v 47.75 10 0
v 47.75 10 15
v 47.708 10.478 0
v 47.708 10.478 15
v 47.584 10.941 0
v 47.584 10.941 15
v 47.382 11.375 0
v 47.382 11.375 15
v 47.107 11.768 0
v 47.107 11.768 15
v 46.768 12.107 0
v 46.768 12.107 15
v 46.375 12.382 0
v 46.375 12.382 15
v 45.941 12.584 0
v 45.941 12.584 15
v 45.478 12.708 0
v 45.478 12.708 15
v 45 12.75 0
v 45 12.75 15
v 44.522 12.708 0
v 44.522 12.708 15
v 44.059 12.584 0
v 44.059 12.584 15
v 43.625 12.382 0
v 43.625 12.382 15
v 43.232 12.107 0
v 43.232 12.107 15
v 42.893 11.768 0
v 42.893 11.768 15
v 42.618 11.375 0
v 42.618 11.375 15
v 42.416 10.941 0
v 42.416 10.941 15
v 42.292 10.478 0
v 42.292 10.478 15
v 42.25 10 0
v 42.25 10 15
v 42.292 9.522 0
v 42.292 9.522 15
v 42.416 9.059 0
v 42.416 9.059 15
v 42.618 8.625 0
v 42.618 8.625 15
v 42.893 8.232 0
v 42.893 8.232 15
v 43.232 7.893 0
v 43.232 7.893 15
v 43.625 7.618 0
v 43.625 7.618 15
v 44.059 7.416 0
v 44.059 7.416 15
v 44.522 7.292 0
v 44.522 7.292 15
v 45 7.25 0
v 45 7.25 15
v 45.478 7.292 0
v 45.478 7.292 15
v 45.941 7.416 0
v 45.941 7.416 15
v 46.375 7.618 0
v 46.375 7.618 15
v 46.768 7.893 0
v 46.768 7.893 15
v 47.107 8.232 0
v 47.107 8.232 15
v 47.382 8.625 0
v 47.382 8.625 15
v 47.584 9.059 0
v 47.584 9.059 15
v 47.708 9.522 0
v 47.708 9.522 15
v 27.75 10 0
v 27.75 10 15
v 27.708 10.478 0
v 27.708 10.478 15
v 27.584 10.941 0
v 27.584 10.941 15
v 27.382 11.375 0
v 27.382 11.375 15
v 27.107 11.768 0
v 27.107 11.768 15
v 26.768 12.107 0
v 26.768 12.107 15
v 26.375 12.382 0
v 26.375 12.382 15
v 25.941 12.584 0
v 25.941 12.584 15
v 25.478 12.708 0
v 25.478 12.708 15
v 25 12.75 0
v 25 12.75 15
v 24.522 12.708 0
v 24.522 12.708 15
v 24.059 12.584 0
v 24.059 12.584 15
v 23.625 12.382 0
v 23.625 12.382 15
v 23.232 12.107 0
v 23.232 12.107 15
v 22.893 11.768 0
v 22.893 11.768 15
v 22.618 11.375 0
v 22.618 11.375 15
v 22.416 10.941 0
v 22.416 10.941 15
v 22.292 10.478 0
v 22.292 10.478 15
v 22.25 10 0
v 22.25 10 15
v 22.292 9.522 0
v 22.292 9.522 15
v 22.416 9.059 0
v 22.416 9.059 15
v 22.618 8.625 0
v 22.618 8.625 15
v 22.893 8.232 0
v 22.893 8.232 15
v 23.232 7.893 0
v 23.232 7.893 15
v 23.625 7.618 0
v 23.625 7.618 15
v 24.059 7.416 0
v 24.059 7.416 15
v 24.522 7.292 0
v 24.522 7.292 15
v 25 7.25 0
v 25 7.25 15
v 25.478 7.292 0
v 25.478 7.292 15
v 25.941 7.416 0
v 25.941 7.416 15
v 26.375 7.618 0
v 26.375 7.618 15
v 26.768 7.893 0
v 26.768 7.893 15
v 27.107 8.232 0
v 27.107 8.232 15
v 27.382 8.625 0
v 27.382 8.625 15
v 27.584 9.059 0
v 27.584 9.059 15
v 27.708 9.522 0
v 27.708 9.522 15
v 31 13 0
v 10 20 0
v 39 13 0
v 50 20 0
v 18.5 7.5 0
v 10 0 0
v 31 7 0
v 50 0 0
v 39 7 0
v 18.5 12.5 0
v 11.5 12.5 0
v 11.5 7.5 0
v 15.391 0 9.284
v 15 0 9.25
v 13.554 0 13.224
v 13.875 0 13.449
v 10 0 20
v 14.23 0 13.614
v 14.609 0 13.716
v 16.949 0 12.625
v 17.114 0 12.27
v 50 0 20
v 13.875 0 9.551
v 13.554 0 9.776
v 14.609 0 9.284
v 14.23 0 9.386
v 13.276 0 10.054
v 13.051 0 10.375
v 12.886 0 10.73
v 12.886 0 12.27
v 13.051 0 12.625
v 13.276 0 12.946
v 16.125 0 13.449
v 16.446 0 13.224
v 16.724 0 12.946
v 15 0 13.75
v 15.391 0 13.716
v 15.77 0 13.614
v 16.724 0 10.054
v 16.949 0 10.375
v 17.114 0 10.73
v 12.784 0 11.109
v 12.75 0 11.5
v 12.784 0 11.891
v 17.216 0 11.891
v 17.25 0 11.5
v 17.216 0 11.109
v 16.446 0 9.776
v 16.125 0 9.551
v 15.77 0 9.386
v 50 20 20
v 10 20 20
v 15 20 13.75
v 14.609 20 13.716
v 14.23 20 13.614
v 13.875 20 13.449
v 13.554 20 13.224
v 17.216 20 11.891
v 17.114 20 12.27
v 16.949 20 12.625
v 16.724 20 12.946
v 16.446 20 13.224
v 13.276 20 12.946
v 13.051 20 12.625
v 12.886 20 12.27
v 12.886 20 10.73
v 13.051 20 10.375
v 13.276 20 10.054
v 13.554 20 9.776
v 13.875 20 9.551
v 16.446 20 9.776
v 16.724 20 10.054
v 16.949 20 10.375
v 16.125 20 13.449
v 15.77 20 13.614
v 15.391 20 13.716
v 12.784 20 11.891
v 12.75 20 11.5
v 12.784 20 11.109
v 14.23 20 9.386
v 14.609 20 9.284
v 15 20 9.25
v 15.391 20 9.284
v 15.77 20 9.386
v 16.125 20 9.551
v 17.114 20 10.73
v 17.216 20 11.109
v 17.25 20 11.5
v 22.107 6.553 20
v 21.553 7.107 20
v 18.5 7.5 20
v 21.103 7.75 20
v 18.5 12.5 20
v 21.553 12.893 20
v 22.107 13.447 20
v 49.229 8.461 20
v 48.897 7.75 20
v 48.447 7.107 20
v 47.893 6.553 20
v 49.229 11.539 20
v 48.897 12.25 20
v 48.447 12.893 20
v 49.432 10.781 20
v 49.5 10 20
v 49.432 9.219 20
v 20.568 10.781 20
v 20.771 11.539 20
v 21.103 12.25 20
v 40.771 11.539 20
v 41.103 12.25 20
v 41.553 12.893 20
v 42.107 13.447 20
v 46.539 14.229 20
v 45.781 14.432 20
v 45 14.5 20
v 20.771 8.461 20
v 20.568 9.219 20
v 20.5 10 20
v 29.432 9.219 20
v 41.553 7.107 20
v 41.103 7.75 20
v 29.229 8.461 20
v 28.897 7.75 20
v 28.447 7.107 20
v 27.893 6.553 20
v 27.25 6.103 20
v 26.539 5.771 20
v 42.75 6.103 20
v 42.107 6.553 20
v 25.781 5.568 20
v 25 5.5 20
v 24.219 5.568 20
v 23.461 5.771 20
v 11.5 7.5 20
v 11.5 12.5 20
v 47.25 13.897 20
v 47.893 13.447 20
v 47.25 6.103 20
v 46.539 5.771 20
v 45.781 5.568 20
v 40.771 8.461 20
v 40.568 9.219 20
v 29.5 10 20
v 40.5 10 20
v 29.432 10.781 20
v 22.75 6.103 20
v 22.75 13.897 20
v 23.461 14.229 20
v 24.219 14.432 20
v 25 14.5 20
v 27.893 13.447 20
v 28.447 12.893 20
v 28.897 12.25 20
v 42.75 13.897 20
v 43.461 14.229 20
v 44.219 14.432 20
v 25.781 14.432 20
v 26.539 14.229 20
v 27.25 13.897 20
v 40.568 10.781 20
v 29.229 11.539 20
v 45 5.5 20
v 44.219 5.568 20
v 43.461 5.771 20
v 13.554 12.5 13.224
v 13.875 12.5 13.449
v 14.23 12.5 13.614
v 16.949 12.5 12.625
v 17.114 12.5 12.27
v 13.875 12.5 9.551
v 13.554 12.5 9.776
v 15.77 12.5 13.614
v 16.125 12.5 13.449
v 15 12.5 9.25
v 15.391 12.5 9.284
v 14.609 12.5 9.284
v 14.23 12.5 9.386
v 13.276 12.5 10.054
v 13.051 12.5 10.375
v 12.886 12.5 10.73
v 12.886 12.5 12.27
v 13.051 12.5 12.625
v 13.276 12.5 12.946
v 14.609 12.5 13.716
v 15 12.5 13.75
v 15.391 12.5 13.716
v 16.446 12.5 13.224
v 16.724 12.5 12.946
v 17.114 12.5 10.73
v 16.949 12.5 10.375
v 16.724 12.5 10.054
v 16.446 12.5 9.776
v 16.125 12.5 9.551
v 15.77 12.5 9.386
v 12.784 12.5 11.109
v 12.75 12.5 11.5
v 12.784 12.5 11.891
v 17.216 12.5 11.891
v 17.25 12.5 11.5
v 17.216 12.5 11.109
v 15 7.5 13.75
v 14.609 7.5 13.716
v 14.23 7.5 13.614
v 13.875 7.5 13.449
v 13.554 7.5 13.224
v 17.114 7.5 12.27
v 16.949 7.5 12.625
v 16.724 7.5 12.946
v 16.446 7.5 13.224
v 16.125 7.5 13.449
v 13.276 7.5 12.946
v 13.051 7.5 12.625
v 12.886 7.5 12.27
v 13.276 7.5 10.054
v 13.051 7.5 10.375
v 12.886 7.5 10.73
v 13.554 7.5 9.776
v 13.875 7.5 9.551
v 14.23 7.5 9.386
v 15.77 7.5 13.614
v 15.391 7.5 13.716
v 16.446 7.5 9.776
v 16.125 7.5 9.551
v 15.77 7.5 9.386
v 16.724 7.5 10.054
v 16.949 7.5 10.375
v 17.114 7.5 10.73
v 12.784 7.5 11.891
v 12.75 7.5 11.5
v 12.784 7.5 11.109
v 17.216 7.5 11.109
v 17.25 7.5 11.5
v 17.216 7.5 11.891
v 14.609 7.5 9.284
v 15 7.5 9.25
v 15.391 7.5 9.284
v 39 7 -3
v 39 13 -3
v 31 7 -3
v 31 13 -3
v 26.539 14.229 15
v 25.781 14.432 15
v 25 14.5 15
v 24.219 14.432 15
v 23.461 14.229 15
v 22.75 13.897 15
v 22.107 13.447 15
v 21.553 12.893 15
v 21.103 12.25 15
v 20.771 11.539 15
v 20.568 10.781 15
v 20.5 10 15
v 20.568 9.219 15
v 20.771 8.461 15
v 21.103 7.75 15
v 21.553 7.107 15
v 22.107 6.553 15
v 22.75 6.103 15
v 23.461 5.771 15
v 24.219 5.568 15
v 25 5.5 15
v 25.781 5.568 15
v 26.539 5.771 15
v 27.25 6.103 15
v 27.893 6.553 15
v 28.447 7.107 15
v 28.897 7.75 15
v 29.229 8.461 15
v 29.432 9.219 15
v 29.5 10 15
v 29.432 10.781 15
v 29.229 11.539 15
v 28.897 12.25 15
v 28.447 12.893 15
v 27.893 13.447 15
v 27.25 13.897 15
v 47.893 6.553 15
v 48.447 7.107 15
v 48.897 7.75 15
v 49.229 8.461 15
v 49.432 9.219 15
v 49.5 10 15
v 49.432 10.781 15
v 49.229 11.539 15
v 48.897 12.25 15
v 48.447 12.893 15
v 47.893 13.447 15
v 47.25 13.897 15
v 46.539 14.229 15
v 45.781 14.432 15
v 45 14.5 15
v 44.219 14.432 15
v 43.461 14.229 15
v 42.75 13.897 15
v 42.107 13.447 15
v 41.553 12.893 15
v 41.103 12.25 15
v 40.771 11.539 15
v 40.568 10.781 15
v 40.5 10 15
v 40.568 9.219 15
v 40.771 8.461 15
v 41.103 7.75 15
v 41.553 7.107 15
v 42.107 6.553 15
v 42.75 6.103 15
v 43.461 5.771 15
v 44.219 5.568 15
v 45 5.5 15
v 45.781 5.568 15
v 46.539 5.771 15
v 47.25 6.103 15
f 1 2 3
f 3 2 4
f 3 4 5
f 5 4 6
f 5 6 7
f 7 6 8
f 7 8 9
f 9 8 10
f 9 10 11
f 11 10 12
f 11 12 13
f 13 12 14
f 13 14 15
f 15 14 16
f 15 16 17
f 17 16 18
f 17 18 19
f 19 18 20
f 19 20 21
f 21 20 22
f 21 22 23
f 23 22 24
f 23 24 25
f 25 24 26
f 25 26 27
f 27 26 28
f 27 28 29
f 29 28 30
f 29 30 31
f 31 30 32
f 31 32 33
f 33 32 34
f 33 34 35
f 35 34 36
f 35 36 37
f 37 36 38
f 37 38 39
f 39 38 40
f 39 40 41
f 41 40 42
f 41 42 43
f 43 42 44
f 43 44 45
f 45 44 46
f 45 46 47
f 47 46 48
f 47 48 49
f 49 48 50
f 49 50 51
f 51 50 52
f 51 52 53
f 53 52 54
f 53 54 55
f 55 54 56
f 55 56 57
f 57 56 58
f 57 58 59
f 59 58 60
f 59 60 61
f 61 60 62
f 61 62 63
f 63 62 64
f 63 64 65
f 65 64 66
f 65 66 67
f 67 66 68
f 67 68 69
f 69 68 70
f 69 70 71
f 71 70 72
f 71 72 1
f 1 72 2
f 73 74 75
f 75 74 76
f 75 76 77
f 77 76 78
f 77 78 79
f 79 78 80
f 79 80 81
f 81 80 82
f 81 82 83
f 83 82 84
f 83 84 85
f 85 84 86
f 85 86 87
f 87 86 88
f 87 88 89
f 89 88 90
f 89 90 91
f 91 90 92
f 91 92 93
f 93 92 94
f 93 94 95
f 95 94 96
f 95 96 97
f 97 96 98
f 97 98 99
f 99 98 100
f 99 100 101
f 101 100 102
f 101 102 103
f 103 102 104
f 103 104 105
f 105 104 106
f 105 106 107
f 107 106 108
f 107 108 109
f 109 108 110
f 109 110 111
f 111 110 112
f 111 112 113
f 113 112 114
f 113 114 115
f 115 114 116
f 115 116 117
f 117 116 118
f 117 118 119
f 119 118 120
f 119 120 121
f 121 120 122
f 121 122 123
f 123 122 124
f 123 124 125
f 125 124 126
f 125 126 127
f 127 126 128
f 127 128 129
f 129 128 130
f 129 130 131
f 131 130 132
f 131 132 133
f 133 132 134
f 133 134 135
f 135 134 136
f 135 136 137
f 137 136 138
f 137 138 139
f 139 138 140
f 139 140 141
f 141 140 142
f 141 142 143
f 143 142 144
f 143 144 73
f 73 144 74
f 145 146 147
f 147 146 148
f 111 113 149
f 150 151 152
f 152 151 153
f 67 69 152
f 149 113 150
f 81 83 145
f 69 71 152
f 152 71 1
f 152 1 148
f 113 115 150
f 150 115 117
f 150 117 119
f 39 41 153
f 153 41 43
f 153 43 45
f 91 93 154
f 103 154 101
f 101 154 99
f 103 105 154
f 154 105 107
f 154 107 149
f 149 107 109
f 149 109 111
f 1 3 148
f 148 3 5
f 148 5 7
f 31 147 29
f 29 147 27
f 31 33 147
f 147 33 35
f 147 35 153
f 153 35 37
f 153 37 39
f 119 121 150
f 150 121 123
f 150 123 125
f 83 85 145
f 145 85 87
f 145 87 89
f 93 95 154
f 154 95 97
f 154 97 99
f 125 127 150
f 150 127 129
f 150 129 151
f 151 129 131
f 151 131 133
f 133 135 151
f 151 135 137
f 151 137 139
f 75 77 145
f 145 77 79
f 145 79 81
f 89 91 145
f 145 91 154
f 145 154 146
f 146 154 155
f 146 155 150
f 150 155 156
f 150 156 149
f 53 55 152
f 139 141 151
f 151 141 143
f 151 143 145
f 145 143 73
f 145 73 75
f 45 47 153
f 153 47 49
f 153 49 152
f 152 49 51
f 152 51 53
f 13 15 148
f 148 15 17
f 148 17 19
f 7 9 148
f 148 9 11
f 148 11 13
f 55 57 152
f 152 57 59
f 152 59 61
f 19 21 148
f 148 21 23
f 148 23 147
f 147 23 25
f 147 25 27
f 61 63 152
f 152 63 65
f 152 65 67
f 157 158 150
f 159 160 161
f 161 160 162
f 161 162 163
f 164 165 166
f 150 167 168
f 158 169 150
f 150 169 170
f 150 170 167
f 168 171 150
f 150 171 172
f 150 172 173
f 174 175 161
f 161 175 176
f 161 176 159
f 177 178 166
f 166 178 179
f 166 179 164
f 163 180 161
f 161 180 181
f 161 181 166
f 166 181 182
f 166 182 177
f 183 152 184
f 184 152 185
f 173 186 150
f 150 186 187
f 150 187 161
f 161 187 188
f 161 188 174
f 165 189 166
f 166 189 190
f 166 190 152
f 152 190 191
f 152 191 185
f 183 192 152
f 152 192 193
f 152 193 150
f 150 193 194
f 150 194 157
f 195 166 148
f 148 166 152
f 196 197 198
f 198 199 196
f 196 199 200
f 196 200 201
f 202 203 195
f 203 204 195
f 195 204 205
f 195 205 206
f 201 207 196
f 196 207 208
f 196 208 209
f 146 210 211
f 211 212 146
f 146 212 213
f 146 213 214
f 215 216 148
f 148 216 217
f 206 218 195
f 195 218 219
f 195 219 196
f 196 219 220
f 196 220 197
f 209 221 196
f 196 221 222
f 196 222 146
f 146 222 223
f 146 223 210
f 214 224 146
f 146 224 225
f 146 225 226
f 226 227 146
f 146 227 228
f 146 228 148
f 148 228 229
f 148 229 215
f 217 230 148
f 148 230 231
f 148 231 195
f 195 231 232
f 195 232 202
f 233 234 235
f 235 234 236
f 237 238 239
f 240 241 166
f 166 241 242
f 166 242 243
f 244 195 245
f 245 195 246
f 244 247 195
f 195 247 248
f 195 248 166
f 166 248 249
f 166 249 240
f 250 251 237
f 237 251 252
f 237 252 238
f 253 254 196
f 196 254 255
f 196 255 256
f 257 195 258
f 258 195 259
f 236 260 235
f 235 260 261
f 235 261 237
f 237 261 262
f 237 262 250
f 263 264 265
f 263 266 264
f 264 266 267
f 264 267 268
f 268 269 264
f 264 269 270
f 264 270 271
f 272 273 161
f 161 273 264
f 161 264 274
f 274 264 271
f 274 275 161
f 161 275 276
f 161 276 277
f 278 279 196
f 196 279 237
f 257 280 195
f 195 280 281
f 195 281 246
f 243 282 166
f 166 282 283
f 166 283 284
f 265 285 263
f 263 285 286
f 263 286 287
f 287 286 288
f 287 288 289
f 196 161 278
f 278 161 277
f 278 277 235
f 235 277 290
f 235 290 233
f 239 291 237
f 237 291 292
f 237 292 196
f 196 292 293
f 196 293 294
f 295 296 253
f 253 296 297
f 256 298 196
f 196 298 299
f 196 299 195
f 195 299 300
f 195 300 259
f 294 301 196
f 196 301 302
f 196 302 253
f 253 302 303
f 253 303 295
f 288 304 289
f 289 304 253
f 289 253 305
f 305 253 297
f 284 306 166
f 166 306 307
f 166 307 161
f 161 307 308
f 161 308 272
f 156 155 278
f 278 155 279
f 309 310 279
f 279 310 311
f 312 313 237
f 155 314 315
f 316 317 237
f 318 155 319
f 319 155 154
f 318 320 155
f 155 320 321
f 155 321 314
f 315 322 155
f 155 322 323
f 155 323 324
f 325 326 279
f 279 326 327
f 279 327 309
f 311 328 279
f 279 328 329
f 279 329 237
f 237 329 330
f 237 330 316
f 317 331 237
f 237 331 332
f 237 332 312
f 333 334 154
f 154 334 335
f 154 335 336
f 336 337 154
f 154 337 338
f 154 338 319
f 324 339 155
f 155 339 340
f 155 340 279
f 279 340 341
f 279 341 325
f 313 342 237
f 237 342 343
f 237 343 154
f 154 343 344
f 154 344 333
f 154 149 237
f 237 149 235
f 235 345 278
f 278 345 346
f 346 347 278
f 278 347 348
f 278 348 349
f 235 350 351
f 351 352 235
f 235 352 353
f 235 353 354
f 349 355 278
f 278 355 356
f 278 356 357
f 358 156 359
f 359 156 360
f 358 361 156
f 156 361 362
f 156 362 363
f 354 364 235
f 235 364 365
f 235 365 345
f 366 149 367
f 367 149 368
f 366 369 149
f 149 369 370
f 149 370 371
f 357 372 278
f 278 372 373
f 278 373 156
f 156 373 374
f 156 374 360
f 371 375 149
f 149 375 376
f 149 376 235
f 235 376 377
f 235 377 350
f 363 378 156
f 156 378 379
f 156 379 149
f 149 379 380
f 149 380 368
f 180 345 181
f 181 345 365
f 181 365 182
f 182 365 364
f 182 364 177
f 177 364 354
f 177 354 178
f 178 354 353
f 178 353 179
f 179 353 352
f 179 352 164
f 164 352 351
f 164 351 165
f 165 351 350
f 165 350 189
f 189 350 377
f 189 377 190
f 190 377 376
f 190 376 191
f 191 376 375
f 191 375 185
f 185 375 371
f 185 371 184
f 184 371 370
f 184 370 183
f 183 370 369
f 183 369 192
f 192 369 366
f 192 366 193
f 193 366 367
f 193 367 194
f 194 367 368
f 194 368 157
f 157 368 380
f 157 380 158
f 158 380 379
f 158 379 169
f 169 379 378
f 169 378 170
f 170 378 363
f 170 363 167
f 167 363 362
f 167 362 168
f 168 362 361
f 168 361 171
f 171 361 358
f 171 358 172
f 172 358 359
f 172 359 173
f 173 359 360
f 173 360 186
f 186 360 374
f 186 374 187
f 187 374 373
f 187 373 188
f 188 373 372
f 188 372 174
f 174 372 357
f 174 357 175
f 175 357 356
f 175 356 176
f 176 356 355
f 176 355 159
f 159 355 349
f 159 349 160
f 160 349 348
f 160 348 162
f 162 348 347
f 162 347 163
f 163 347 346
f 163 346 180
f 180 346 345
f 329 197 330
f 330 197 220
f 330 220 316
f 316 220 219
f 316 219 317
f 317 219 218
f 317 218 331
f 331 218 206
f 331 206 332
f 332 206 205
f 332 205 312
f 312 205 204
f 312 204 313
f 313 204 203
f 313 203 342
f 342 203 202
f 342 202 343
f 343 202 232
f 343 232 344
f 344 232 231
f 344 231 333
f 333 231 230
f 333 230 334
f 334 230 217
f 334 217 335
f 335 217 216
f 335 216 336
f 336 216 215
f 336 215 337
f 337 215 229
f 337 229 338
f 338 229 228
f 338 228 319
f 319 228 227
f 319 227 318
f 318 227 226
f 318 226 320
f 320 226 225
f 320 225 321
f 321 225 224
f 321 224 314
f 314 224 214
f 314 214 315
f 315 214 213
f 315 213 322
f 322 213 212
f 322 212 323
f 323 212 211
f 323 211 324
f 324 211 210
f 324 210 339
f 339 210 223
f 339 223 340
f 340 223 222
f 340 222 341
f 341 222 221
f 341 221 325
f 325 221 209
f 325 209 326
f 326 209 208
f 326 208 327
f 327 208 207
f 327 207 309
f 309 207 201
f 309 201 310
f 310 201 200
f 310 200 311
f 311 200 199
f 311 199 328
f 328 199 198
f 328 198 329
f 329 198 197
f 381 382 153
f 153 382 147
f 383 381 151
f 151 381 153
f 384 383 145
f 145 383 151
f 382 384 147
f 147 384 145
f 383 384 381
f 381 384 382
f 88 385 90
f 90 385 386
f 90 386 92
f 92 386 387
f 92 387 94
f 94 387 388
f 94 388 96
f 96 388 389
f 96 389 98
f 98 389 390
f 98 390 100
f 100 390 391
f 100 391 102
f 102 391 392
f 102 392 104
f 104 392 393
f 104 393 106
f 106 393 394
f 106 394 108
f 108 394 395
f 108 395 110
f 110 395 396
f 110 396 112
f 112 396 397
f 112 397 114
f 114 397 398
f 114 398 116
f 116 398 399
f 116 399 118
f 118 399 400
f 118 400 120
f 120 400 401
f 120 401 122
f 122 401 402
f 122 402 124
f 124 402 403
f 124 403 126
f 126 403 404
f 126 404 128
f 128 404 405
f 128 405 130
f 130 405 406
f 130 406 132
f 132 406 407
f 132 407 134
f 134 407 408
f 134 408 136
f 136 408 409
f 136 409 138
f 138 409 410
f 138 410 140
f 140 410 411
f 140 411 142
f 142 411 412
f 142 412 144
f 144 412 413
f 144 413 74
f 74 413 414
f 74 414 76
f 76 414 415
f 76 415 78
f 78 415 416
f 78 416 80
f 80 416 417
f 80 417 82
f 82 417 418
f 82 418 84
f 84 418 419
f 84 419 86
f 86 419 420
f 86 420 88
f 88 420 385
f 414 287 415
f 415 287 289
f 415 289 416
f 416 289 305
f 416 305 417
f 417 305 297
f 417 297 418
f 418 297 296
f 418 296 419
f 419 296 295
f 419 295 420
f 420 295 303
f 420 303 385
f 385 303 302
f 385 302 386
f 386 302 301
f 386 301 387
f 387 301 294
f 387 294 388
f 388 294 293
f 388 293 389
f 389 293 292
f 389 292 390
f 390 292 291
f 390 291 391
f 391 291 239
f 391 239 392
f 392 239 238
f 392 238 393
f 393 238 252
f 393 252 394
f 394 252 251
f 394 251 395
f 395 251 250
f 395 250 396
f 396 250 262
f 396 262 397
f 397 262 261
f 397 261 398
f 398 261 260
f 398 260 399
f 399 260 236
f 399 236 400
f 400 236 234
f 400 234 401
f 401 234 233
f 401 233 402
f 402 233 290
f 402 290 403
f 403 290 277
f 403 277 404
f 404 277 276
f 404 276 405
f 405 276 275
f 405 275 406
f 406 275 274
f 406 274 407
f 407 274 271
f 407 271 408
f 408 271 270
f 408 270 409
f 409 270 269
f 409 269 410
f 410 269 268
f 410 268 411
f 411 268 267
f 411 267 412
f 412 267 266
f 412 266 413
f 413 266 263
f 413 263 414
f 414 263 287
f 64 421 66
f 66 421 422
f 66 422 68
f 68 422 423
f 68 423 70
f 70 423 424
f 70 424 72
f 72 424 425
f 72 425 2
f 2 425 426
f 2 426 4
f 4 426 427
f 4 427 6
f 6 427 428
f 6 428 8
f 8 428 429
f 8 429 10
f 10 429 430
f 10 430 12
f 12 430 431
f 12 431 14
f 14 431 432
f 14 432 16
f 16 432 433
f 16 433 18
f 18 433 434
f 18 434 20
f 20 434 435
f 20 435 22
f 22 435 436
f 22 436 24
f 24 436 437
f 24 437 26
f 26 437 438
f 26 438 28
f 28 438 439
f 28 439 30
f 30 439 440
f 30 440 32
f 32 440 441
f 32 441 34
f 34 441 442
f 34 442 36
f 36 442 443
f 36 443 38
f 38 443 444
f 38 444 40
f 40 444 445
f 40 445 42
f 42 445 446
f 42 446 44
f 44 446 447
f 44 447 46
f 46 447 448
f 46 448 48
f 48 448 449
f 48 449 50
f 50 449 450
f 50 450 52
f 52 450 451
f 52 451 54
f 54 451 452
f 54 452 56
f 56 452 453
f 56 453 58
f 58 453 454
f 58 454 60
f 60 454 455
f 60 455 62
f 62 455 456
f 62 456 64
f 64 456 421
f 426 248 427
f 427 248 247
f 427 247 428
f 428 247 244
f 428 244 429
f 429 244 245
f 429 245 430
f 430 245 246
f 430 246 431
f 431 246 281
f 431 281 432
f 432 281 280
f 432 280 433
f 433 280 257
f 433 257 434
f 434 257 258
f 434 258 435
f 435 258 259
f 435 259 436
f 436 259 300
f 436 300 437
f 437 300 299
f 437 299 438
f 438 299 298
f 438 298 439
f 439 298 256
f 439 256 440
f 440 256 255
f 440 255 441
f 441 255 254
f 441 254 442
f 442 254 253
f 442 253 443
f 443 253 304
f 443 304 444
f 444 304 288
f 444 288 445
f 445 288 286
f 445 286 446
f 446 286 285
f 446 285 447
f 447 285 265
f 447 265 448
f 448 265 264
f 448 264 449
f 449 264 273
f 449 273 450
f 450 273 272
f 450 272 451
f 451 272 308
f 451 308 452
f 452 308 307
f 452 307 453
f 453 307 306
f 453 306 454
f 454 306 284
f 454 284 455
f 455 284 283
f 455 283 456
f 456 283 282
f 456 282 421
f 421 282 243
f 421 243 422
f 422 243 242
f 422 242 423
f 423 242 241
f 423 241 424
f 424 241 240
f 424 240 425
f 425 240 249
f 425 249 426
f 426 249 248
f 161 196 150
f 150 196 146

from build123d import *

# Parameters (mm, degrees)
SKETCH1_W           = 50
SKETCH1_H           = 20
BOSS_EXTRUDE1_DEPTH = 20
SKETCH2_R           = 2.75
SKETCH2_W           = 7
SKETCH2_H           = 5
CUT_EXTRUDE1_DEPTH  = 21
SKETCH3_R           = 2.25
CUT_EXTRUDE2_DEPTH  = 21
SKETCH5_W           = 8
SKETCH5_H           = 6
BOSS_EXTRUDE3_DEPTH = 3
SKETCH6_R           = 4.5
CUT_EXTRUDE3_DEPTH  = 5
SKETCH7_W           = 10
SKETCH7_H           = 20
CUT_EXTRUDE4_DEPTH  = 24


with BuildPart() as part:
    # Sketch1 → Boss-Extrude1 (new body)
    with BuildSketch(Plane.XY):
        with Locations((25, 10)):
            Rectangle(SKETCH1_W, SKETCH1_H)
    extrude(amount=BOSS_EXTRUDE1_DEPTH)

    # Sketch2 → Cut-Extrude1 (cut, through all)
    with BuildSketch(Plane.XY.offset(20)):
        with Locations((25, 10)):
            Circle(SKETCH2_R)
        with Locations((45, 10)):
            Circle(SKETCH2_R)
        with Locations((15, 10)):
            Rectangle(SKETCH2_W, SKETCH2_H)
    extrude(amount=-CUT_EXTRUDE1_DEPTH, mode=Mode.SUBTRACT)

    # Sketch3 → Cut-Extrude2 (cut, through all)
    with BuildSketch(Plane(origin=(0, 20, 0), x_dir=(1, 0, 0), z_dir=(0, 1, 0))):
        with Locations((15, -11.5)):
            Circle(SKETCH3_R)
    extrude(amount=-CUT_EXTRUDE2_DEPTH, mode=Mode.SUBTRACT)

    # Sketch5 → Boss-Extrude3 (add)
    with BuildSketch(Plane(origin=(0, 0, 0), x_dir=(-1, 0, 0), z_dir=(0, 0, -1))):
        with Locations((-35, 10)):
            Rectangle(SKETCH5_W, SKETCH5_H)
    extrude(amount=BOSS_EXTRUDE3_DEPTH)

    # Sketch6 → Cut-Extrude3 (cut)
    with BuildSketch(Plane.XY.offset(20)):
        with Locations((25, 10)):
            Circle(SKETCH6_R)
        with Locations((45, 10)):
            Circle(SKETCH6_R)
    extrude(amount=-CUT_EXTRUDE3_DEPTH, mode=Mode.SUBTRACT)

    # Sketch7 → Cut-Extrude4 (cut, through all)
    with BuildSketch(Plane.XY.offset(20)):
        with Locations((5, 10)):
            Rectangle(SKETCH7_W, SKETCH7_H)
    extrude(amount=-CUT_EXTRUDE4_DEPTH, mode=Mode.SUBTRACT)


solid = part.part
